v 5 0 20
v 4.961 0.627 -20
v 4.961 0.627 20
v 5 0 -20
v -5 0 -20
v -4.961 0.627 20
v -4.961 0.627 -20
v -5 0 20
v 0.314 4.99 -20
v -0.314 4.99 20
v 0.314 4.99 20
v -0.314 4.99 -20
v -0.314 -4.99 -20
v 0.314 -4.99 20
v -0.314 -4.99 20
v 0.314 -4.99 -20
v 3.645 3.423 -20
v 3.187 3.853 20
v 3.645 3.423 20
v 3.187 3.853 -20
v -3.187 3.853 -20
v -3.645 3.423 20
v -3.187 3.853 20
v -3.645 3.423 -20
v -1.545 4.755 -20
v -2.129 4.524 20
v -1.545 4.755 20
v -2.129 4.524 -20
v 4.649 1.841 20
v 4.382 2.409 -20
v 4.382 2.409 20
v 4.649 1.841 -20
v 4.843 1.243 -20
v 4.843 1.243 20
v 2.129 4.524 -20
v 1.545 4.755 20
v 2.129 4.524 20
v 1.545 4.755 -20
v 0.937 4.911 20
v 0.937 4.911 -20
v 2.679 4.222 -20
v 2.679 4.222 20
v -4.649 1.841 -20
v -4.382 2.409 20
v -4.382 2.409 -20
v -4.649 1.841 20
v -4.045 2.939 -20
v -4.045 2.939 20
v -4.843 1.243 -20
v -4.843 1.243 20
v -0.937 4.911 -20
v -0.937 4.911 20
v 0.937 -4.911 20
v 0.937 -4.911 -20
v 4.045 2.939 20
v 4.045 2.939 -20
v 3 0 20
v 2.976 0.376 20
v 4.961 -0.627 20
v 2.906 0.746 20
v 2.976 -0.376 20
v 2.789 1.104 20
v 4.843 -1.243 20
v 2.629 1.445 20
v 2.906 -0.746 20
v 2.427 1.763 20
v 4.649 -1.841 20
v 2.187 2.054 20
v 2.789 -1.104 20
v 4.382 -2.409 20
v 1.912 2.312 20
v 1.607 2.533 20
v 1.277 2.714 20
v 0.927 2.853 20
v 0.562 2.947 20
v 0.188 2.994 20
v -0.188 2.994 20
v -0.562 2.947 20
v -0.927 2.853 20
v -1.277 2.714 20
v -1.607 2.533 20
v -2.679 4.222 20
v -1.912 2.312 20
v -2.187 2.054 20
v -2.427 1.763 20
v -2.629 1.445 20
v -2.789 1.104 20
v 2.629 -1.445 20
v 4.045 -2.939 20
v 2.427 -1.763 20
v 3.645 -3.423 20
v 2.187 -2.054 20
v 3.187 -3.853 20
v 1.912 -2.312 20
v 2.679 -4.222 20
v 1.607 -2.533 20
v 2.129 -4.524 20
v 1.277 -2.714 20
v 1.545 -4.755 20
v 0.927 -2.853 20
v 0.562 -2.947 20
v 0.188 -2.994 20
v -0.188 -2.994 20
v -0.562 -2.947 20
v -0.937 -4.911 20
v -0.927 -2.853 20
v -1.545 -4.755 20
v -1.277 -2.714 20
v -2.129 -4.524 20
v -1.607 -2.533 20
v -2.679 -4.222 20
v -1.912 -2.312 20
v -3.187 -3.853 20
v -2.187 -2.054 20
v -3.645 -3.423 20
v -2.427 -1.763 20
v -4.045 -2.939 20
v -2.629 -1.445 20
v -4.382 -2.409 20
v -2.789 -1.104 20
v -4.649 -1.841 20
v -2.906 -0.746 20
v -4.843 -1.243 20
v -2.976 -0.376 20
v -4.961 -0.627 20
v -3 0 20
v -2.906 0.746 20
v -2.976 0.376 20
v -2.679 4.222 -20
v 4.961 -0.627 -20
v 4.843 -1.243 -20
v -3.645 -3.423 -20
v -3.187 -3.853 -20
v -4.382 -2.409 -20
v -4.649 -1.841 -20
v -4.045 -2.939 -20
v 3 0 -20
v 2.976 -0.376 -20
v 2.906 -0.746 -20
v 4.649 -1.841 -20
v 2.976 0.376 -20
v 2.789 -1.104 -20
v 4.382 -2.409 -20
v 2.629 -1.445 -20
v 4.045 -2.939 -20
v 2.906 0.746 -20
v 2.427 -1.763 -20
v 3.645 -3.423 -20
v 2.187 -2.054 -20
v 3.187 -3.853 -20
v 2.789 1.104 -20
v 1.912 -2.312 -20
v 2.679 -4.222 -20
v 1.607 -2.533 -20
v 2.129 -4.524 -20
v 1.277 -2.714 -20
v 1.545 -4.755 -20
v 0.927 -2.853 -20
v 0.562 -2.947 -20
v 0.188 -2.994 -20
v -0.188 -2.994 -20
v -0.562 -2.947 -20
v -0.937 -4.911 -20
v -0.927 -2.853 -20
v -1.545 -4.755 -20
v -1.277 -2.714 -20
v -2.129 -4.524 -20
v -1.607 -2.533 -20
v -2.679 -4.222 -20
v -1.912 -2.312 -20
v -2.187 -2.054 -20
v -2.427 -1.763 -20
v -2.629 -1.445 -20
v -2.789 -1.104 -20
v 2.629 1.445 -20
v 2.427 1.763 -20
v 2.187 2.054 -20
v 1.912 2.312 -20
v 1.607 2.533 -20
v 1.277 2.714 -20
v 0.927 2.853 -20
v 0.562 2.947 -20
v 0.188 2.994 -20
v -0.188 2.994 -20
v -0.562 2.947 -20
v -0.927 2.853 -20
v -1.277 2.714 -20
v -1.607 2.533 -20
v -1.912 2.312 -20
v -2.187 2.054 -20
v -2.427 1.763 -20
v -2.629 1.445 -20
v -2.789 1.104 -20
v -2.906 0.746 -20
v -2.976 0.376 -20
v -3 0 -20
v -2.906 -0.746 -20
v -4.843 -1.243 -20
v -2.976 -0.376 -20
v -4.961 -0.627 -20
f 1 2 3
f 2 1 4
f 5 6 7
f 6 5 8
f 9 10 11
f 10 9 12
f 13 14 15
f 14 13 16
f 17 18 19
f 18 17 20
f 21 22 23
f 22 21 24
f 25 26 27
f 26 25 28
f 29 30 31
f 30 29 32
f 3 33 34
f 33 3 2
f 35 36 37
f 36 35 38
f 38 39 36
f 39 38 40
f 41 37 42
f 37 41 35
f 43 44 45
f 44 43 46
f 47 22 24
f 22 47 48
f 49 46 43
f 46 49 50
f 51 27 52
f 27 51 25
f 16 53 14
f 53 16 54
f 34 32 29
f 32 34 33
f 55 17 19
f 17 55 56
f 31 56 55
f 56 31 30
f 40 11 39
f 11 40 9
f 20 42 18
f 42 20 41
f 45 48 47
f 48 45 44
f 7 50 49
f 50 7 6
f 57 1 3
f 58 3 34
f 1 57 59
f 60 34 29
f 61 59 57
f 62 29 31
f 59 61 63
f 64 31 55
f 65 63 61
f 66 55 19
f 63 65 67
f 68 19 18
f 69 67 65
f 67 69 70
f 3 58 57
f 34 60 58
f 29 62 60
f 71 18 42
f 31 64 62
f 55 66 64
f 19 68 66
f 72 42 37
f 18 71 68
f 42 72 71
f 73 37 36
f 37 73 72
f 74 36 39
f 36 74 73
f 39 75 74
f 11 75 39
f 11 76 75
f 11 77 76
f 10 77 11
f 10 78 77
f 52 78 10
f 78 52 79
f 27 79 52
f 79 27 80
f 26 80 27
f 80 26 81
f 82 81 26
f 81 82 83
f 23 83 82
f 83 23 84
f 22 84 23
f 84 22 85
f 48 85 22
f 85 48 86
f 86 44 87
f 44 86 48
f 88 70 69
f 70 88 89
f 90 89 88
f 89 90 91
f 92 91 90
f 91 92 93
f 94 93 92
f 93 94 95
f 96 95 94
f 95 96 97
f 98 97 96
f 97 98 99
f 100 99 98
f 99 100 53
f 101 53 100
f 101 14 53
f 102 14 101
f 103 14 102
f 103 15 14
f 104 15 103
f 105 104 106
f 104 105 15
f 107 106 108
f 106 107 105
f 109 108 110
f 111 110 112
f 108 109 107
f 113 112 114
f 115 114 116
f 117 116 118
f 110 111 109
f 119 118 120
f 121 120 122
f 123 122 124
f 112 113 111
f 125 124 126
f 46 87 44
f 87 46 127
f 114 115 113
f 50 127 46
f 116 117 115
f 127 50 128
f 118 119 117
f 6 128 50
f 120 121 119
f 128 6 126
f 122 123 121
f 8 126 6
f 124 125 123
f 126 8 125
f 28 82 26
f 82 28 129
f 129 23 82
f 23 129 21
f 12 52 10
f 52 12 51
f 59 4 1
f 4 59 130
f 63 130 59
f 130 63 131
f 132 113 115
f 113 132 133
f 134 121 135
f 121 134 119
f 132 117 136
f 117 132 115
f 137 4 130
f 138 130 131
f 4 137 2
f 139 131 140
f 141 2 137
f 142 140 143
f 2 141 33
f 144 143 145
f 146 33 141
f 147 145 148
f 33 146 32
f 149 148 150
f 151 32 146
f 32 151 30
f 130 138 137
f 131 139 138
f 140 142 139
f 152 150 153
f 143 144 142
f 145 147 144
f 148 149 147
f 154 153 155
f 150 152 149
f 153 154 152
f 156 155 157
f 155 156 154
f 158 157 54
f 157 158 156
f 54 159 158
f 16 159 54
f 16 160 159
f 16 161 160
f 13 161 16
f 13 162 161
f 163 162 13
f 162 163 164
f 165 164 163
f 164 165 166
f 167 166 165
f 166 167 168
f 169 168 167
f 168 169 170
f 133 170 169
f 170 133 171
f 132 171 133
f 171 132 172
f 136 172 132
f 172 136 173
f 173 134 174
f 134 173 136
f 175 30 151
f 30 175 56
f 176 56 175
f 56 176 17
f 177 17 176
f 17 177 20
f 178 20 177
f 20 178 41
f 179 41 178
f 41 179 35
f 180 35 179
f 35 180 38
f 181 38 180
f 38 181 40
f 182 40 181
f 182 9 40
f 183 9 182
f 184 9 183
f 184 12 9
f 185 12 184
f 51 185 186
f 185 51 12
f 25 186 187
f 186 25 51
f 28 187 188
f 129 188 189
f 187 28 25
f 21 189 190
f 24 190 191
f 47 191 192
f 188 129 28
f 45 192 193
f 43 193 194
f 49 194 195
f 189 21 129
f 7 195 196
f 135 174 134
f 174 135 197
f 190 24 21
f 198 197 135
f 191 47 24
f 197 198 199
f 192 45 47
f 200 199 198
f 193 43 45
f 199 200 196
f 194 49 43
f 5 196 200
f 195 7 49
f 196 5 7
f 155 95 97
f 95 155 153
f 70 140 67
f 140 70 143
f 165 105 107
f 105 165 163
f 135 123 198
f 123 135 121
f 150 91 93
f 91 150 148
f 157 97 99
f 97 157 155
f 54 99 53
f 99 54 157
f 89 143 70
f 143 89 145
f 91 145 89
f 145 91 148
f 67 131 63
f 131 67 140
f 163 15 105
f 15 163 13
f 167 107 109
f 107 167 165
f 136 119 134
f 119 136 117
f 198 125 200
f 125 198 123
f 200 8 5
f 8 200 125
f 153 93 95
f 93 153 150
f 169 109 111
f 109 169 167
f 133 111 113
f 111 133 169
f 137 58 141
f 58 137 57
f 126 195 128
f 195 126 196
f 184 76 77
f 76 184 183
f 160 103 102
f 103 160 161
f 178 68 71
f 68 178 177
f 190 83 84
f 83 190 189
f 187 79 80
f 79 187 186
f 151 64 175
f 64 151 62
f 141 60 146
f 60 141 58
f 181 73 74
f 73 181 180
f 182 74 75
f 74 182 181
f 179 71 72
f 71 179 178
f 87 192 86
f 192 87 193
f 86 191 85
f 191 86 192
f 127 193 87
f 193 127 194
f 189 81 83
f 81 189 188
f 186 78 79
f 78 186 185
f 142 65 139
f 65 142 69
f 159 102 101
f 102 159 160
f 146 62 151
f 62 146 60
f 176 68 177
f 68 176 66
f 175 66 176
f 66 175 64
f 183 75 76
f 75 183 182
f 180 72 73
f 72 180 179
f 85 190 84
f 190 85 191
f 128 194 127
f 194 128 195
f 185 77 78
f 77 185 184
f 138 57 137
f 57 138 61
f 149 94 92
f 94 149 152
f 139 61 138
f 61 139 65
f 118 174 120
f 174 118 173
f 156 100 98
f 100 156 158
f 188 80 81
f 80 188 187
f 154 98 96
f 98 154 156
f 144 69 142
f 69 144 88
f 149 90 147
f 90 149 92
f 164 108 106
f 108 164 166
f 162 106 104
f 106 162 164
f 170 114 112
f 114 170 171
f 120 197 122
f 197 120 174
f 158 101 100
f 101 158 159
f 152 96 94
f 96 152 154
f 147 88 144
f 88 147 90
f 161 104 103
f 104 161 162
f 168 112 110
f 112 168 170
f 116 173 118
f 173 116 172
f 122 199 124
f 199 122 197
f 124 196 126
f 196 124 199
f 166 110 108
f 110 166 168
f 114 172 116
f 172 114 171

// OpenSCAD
$fn = 50;


difference() {
	union() {
		translate(v = [0, 0, -20.0000000000]) {
			cylinder(h = 40, r = 5.0000000000);
		}
	}
	union() {
		translate(v = [0, 0, -100.0000000000]) {
			cylinder(h = 200, r = 3);
		}
	}
}
